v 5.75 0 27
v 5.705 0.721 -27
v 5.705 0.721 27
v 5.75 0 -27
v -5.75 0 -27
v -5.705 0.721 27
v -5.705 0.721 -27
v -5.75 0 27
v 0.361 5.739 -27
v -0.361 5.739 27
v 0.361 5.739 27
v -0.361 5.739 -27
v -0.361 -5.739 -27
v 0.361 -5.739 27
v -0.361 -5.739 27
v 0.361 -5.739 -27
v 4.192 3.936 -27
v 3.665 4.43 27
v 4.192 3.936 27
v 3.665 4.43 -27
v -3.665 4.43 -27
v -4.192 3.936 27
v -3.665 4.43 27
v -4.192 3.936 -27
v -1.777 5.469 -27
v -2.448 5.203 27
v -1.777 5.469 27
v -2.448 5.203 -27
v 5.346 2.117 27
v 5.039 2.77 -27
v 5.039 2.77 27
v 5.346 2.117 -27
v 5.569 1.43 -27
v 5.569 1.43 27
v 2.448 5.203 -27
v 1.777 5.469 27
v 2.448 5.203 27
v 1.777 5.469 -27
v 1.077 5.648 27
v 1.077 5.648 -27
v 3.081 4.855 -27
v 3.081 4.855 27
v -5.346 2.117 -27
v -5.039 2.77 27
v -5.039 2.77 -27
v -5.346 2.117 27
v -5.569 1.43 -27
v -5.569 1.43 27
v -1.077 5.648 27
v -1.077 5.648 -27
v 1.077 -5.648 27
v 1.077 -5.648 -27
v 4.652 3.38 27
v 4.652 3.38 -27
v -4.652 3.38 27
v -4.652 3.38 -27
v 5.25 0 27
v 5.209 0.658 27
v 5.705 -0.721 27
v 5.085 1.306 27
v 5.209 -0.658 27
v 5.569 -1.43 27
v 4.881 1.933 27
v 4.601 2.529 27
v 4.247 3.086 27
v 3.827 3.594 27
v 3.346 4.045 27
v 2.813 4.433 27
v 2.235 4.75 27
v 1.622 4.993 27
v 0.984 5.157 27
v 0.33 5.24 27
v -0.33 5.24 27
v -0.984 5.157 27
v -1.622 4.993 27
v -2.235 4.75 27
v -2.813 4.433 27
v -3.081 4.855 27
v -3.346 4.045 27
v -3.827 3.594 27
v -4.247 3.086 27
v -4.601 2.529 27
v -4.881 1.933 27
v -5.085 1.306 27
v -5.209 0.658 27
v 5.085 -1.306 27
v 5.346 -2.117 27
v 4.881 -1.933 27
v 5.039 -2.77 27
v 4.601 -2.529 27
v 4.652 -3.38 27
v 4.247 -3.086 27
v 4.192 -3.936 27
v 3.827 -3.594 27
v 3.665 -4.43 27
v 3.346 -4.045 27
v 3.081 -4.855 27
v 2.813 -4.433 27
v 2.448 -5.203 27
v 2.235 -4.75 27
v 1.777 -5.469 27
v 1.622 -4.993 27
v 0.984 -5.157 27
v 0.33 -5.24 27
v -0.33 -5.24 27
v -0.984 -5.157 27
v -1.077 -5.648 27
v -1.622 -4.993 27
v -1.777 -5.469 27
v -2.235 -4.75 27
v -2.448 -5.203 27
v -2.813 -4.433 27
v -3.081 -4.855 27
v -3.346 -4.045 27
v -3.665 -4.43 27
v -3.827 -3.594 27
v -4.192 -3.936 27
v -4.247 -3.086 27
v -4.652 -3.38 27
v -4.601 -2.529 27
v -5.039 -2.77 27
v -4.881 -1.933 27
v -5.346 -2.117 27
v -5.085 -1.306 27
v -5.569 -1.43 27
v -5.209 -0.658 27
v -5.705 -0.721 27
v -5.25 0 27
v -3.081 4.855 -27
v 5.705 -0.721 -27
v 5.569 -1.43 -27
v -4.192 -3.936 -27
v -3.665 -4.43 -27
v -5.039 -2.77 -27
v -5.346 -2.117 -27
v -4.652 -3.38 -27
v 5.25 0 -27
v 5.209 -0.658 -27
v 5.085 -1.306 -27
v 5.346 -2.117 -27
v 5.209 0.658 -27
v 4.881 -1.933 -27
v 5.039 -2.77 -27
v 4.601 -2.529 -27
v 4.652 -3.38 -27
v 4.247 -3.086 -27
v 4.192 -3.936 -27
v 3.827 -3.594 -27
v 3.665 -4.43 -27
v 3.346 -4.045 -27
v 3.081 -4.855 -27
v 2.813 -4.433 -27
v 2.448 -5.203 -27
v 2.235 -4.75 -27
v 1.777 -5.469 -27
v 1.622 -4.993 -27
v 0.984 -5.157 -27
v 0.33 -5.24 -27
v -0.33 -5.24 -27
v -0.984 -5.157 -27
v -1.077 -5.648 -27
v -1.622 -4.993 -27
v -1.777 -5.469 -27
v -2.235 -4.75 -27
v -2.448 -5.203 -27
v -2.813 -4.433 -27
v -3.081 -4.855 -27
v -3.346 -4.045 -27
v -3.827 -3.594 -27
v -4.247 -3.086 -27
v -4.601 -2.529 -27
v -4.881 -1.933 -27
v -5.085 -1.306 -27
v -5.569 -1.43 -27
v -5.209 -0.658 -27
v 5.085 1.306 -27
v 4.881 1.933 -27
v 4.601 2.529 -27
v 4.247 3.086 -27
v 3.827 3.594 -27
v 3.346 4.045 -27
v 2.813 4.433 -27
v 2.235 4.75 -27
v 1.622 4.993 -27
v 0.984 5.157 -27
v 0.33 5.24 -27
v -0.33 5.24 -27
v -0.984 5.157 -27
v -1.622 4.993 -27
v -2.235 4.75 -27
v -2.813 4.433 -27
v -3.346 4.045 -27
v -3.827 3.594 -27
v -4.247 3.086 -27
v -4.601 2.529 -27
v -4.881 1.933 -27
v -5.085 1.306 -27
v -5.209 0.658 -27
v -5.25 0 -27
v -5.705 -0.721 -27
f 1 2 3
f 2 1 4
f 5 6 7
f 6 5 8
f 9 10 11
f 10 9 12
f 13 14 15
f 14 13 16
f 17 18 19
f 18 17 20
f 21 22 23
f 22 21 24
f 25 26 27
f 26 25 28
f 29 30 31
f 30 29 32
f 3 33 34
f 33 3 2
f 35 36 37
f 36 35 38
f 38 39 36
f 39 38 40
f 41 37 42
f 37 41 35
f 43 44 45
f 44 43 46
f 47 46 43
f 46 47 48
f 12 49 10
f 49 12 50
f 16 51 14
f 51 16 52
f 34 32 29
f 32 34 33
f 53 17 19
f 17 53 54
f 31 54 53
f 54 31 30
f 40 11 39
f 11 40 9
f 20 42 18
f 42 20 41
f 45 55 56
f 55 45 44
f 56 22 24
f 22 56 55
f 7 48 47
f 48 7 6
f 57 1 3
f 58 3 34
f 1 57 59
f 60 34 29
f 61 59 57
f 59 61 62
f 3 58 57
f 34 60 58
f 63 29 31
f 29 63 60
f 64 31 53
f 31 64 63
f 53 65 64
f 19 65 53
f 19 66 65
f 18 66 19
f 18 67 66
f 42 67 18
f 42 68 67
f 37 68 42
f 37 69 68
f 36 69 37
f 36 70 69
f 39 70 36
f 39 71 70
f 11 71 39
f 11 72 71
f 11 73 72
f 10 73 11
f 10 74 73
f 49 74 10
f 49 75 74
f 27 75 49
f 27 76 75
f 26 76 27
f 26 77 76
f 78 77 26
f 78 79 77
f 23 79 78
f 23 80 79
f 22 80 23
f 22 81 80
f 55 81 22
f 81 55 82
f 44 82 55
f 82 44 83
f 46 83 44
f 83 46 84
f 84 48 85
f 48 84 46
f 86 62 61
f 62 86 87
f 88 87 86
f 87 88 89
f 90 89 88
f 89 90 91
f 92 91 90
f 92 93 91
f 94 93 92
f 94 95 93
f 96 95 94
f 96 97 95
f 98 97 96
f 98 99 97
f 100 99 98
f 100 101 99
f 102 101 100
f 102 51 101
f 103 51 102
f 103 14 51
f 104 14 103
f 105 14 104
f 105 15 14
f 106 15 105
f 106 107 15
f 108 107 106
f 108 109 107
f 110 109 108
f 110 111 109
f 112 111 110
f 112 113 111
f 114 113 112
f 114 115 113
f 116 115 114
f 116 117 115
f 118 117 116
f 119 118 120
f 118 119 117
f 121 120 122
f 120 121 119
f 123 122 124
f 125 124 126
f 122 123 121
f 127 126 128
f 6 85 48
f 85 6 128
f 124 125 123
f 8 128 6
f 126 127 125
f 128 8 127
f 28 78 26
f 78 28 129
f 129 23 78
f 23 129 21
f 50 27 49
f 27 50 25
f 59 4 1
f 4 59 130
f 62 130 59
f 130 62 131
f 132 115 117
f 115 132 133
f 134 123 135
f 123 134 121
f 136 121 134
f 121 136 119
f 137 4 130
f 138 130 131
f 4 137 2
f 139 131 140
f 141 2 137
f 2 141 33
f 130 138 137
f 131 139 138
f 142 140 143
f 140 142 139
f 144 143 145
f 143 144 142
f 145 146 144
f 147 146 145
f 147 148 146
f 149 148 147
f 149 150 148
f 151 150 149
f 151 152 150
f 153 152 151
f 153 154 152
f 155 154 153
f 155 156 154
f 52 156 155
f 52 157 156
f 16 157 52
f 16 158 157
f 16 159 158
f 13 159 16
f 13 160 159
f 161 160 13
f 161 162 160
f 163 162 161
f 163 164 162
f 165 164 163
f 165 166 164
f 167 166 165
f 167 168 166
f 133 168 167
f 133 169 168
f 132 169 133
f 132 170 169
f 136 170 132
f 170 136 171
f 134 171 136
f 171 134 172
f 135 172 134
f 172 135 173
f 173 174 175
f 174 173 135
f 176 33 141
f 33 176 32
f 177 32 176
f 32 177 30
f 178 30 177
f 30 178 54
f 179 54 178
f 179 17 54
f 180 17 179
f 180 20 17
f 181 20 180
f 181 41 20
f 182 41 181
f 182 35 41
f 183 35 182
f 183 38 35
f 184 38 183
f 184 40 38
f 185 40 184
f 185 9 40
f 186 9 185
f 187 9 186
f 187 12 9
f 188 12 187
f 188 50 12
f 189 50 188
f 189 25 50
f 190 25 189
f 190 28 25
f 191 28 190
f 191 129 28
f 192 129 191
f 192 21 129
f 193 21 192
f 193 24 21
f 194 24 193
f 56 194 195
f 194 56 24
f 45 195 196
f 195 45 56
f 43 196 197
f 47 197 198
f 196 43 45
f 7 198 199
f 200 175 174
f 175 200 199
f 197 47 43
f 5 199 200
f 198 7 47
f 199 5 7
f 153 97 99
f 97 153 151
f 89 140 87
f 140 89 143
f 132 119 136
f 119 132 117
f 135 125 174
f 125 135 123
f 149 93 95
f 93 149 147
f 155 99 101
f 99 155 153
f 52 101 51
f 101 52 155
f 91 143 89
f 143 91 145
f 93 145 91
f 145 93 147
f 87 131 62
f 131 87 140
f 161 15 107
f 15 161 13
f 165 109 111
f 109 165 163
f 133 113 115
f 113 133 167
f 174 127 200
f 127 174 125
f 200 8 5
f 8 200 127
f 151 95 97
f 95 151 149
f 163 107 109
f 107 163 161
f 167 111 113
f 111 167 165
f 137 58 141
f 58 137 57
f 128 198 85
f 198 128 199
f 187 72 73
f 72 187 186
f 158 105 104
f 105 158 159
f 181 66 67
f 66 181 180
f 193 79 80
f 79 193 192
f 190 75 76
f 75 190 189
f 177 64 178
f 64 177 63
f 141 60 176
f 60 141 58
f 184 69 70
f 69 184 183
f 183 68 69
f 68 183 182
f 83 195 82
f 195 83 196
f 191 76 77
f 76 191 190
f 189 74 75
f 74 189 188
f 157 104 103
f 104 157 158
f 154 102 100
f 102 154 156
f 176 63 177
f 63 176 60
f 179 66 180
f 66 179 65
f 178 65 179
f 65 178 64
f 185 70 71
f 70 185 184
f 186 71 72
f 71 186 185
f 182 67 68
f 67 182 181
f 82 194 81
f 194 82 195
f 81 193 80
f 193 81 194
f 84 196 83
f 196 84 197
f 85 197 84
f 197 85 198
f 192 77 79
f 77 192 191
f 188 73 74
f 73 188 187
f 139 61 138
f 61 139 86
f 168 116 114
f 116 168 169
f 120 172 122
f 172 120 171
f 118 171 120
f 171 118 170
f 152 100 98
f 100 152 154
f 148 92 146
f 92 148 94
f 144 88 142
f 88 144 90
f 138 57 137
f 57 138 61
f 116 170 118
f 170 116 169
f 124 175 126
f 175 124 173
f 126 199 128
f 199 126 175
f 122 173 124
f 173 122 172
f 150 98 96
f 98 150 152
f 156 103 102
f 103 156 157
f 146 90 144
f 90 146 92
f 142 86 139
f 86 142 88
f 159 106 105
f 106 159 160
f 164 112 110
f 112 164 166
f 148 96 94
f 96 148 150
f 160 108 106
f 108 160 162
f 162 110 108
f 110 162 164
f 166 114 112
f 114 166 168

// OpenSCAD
$fn = 50;


difference() {
	union() {
		translate(v = [0, 0, -27.0000000000]) {
			cylinder(h = 54, r = 5.7500000000);
		}
	}
	union() {
		translate(v = [0, 0, -100.0000000000]) {
			cylinder(h = 200, r = 5.2500000000);
		}
	}
}
